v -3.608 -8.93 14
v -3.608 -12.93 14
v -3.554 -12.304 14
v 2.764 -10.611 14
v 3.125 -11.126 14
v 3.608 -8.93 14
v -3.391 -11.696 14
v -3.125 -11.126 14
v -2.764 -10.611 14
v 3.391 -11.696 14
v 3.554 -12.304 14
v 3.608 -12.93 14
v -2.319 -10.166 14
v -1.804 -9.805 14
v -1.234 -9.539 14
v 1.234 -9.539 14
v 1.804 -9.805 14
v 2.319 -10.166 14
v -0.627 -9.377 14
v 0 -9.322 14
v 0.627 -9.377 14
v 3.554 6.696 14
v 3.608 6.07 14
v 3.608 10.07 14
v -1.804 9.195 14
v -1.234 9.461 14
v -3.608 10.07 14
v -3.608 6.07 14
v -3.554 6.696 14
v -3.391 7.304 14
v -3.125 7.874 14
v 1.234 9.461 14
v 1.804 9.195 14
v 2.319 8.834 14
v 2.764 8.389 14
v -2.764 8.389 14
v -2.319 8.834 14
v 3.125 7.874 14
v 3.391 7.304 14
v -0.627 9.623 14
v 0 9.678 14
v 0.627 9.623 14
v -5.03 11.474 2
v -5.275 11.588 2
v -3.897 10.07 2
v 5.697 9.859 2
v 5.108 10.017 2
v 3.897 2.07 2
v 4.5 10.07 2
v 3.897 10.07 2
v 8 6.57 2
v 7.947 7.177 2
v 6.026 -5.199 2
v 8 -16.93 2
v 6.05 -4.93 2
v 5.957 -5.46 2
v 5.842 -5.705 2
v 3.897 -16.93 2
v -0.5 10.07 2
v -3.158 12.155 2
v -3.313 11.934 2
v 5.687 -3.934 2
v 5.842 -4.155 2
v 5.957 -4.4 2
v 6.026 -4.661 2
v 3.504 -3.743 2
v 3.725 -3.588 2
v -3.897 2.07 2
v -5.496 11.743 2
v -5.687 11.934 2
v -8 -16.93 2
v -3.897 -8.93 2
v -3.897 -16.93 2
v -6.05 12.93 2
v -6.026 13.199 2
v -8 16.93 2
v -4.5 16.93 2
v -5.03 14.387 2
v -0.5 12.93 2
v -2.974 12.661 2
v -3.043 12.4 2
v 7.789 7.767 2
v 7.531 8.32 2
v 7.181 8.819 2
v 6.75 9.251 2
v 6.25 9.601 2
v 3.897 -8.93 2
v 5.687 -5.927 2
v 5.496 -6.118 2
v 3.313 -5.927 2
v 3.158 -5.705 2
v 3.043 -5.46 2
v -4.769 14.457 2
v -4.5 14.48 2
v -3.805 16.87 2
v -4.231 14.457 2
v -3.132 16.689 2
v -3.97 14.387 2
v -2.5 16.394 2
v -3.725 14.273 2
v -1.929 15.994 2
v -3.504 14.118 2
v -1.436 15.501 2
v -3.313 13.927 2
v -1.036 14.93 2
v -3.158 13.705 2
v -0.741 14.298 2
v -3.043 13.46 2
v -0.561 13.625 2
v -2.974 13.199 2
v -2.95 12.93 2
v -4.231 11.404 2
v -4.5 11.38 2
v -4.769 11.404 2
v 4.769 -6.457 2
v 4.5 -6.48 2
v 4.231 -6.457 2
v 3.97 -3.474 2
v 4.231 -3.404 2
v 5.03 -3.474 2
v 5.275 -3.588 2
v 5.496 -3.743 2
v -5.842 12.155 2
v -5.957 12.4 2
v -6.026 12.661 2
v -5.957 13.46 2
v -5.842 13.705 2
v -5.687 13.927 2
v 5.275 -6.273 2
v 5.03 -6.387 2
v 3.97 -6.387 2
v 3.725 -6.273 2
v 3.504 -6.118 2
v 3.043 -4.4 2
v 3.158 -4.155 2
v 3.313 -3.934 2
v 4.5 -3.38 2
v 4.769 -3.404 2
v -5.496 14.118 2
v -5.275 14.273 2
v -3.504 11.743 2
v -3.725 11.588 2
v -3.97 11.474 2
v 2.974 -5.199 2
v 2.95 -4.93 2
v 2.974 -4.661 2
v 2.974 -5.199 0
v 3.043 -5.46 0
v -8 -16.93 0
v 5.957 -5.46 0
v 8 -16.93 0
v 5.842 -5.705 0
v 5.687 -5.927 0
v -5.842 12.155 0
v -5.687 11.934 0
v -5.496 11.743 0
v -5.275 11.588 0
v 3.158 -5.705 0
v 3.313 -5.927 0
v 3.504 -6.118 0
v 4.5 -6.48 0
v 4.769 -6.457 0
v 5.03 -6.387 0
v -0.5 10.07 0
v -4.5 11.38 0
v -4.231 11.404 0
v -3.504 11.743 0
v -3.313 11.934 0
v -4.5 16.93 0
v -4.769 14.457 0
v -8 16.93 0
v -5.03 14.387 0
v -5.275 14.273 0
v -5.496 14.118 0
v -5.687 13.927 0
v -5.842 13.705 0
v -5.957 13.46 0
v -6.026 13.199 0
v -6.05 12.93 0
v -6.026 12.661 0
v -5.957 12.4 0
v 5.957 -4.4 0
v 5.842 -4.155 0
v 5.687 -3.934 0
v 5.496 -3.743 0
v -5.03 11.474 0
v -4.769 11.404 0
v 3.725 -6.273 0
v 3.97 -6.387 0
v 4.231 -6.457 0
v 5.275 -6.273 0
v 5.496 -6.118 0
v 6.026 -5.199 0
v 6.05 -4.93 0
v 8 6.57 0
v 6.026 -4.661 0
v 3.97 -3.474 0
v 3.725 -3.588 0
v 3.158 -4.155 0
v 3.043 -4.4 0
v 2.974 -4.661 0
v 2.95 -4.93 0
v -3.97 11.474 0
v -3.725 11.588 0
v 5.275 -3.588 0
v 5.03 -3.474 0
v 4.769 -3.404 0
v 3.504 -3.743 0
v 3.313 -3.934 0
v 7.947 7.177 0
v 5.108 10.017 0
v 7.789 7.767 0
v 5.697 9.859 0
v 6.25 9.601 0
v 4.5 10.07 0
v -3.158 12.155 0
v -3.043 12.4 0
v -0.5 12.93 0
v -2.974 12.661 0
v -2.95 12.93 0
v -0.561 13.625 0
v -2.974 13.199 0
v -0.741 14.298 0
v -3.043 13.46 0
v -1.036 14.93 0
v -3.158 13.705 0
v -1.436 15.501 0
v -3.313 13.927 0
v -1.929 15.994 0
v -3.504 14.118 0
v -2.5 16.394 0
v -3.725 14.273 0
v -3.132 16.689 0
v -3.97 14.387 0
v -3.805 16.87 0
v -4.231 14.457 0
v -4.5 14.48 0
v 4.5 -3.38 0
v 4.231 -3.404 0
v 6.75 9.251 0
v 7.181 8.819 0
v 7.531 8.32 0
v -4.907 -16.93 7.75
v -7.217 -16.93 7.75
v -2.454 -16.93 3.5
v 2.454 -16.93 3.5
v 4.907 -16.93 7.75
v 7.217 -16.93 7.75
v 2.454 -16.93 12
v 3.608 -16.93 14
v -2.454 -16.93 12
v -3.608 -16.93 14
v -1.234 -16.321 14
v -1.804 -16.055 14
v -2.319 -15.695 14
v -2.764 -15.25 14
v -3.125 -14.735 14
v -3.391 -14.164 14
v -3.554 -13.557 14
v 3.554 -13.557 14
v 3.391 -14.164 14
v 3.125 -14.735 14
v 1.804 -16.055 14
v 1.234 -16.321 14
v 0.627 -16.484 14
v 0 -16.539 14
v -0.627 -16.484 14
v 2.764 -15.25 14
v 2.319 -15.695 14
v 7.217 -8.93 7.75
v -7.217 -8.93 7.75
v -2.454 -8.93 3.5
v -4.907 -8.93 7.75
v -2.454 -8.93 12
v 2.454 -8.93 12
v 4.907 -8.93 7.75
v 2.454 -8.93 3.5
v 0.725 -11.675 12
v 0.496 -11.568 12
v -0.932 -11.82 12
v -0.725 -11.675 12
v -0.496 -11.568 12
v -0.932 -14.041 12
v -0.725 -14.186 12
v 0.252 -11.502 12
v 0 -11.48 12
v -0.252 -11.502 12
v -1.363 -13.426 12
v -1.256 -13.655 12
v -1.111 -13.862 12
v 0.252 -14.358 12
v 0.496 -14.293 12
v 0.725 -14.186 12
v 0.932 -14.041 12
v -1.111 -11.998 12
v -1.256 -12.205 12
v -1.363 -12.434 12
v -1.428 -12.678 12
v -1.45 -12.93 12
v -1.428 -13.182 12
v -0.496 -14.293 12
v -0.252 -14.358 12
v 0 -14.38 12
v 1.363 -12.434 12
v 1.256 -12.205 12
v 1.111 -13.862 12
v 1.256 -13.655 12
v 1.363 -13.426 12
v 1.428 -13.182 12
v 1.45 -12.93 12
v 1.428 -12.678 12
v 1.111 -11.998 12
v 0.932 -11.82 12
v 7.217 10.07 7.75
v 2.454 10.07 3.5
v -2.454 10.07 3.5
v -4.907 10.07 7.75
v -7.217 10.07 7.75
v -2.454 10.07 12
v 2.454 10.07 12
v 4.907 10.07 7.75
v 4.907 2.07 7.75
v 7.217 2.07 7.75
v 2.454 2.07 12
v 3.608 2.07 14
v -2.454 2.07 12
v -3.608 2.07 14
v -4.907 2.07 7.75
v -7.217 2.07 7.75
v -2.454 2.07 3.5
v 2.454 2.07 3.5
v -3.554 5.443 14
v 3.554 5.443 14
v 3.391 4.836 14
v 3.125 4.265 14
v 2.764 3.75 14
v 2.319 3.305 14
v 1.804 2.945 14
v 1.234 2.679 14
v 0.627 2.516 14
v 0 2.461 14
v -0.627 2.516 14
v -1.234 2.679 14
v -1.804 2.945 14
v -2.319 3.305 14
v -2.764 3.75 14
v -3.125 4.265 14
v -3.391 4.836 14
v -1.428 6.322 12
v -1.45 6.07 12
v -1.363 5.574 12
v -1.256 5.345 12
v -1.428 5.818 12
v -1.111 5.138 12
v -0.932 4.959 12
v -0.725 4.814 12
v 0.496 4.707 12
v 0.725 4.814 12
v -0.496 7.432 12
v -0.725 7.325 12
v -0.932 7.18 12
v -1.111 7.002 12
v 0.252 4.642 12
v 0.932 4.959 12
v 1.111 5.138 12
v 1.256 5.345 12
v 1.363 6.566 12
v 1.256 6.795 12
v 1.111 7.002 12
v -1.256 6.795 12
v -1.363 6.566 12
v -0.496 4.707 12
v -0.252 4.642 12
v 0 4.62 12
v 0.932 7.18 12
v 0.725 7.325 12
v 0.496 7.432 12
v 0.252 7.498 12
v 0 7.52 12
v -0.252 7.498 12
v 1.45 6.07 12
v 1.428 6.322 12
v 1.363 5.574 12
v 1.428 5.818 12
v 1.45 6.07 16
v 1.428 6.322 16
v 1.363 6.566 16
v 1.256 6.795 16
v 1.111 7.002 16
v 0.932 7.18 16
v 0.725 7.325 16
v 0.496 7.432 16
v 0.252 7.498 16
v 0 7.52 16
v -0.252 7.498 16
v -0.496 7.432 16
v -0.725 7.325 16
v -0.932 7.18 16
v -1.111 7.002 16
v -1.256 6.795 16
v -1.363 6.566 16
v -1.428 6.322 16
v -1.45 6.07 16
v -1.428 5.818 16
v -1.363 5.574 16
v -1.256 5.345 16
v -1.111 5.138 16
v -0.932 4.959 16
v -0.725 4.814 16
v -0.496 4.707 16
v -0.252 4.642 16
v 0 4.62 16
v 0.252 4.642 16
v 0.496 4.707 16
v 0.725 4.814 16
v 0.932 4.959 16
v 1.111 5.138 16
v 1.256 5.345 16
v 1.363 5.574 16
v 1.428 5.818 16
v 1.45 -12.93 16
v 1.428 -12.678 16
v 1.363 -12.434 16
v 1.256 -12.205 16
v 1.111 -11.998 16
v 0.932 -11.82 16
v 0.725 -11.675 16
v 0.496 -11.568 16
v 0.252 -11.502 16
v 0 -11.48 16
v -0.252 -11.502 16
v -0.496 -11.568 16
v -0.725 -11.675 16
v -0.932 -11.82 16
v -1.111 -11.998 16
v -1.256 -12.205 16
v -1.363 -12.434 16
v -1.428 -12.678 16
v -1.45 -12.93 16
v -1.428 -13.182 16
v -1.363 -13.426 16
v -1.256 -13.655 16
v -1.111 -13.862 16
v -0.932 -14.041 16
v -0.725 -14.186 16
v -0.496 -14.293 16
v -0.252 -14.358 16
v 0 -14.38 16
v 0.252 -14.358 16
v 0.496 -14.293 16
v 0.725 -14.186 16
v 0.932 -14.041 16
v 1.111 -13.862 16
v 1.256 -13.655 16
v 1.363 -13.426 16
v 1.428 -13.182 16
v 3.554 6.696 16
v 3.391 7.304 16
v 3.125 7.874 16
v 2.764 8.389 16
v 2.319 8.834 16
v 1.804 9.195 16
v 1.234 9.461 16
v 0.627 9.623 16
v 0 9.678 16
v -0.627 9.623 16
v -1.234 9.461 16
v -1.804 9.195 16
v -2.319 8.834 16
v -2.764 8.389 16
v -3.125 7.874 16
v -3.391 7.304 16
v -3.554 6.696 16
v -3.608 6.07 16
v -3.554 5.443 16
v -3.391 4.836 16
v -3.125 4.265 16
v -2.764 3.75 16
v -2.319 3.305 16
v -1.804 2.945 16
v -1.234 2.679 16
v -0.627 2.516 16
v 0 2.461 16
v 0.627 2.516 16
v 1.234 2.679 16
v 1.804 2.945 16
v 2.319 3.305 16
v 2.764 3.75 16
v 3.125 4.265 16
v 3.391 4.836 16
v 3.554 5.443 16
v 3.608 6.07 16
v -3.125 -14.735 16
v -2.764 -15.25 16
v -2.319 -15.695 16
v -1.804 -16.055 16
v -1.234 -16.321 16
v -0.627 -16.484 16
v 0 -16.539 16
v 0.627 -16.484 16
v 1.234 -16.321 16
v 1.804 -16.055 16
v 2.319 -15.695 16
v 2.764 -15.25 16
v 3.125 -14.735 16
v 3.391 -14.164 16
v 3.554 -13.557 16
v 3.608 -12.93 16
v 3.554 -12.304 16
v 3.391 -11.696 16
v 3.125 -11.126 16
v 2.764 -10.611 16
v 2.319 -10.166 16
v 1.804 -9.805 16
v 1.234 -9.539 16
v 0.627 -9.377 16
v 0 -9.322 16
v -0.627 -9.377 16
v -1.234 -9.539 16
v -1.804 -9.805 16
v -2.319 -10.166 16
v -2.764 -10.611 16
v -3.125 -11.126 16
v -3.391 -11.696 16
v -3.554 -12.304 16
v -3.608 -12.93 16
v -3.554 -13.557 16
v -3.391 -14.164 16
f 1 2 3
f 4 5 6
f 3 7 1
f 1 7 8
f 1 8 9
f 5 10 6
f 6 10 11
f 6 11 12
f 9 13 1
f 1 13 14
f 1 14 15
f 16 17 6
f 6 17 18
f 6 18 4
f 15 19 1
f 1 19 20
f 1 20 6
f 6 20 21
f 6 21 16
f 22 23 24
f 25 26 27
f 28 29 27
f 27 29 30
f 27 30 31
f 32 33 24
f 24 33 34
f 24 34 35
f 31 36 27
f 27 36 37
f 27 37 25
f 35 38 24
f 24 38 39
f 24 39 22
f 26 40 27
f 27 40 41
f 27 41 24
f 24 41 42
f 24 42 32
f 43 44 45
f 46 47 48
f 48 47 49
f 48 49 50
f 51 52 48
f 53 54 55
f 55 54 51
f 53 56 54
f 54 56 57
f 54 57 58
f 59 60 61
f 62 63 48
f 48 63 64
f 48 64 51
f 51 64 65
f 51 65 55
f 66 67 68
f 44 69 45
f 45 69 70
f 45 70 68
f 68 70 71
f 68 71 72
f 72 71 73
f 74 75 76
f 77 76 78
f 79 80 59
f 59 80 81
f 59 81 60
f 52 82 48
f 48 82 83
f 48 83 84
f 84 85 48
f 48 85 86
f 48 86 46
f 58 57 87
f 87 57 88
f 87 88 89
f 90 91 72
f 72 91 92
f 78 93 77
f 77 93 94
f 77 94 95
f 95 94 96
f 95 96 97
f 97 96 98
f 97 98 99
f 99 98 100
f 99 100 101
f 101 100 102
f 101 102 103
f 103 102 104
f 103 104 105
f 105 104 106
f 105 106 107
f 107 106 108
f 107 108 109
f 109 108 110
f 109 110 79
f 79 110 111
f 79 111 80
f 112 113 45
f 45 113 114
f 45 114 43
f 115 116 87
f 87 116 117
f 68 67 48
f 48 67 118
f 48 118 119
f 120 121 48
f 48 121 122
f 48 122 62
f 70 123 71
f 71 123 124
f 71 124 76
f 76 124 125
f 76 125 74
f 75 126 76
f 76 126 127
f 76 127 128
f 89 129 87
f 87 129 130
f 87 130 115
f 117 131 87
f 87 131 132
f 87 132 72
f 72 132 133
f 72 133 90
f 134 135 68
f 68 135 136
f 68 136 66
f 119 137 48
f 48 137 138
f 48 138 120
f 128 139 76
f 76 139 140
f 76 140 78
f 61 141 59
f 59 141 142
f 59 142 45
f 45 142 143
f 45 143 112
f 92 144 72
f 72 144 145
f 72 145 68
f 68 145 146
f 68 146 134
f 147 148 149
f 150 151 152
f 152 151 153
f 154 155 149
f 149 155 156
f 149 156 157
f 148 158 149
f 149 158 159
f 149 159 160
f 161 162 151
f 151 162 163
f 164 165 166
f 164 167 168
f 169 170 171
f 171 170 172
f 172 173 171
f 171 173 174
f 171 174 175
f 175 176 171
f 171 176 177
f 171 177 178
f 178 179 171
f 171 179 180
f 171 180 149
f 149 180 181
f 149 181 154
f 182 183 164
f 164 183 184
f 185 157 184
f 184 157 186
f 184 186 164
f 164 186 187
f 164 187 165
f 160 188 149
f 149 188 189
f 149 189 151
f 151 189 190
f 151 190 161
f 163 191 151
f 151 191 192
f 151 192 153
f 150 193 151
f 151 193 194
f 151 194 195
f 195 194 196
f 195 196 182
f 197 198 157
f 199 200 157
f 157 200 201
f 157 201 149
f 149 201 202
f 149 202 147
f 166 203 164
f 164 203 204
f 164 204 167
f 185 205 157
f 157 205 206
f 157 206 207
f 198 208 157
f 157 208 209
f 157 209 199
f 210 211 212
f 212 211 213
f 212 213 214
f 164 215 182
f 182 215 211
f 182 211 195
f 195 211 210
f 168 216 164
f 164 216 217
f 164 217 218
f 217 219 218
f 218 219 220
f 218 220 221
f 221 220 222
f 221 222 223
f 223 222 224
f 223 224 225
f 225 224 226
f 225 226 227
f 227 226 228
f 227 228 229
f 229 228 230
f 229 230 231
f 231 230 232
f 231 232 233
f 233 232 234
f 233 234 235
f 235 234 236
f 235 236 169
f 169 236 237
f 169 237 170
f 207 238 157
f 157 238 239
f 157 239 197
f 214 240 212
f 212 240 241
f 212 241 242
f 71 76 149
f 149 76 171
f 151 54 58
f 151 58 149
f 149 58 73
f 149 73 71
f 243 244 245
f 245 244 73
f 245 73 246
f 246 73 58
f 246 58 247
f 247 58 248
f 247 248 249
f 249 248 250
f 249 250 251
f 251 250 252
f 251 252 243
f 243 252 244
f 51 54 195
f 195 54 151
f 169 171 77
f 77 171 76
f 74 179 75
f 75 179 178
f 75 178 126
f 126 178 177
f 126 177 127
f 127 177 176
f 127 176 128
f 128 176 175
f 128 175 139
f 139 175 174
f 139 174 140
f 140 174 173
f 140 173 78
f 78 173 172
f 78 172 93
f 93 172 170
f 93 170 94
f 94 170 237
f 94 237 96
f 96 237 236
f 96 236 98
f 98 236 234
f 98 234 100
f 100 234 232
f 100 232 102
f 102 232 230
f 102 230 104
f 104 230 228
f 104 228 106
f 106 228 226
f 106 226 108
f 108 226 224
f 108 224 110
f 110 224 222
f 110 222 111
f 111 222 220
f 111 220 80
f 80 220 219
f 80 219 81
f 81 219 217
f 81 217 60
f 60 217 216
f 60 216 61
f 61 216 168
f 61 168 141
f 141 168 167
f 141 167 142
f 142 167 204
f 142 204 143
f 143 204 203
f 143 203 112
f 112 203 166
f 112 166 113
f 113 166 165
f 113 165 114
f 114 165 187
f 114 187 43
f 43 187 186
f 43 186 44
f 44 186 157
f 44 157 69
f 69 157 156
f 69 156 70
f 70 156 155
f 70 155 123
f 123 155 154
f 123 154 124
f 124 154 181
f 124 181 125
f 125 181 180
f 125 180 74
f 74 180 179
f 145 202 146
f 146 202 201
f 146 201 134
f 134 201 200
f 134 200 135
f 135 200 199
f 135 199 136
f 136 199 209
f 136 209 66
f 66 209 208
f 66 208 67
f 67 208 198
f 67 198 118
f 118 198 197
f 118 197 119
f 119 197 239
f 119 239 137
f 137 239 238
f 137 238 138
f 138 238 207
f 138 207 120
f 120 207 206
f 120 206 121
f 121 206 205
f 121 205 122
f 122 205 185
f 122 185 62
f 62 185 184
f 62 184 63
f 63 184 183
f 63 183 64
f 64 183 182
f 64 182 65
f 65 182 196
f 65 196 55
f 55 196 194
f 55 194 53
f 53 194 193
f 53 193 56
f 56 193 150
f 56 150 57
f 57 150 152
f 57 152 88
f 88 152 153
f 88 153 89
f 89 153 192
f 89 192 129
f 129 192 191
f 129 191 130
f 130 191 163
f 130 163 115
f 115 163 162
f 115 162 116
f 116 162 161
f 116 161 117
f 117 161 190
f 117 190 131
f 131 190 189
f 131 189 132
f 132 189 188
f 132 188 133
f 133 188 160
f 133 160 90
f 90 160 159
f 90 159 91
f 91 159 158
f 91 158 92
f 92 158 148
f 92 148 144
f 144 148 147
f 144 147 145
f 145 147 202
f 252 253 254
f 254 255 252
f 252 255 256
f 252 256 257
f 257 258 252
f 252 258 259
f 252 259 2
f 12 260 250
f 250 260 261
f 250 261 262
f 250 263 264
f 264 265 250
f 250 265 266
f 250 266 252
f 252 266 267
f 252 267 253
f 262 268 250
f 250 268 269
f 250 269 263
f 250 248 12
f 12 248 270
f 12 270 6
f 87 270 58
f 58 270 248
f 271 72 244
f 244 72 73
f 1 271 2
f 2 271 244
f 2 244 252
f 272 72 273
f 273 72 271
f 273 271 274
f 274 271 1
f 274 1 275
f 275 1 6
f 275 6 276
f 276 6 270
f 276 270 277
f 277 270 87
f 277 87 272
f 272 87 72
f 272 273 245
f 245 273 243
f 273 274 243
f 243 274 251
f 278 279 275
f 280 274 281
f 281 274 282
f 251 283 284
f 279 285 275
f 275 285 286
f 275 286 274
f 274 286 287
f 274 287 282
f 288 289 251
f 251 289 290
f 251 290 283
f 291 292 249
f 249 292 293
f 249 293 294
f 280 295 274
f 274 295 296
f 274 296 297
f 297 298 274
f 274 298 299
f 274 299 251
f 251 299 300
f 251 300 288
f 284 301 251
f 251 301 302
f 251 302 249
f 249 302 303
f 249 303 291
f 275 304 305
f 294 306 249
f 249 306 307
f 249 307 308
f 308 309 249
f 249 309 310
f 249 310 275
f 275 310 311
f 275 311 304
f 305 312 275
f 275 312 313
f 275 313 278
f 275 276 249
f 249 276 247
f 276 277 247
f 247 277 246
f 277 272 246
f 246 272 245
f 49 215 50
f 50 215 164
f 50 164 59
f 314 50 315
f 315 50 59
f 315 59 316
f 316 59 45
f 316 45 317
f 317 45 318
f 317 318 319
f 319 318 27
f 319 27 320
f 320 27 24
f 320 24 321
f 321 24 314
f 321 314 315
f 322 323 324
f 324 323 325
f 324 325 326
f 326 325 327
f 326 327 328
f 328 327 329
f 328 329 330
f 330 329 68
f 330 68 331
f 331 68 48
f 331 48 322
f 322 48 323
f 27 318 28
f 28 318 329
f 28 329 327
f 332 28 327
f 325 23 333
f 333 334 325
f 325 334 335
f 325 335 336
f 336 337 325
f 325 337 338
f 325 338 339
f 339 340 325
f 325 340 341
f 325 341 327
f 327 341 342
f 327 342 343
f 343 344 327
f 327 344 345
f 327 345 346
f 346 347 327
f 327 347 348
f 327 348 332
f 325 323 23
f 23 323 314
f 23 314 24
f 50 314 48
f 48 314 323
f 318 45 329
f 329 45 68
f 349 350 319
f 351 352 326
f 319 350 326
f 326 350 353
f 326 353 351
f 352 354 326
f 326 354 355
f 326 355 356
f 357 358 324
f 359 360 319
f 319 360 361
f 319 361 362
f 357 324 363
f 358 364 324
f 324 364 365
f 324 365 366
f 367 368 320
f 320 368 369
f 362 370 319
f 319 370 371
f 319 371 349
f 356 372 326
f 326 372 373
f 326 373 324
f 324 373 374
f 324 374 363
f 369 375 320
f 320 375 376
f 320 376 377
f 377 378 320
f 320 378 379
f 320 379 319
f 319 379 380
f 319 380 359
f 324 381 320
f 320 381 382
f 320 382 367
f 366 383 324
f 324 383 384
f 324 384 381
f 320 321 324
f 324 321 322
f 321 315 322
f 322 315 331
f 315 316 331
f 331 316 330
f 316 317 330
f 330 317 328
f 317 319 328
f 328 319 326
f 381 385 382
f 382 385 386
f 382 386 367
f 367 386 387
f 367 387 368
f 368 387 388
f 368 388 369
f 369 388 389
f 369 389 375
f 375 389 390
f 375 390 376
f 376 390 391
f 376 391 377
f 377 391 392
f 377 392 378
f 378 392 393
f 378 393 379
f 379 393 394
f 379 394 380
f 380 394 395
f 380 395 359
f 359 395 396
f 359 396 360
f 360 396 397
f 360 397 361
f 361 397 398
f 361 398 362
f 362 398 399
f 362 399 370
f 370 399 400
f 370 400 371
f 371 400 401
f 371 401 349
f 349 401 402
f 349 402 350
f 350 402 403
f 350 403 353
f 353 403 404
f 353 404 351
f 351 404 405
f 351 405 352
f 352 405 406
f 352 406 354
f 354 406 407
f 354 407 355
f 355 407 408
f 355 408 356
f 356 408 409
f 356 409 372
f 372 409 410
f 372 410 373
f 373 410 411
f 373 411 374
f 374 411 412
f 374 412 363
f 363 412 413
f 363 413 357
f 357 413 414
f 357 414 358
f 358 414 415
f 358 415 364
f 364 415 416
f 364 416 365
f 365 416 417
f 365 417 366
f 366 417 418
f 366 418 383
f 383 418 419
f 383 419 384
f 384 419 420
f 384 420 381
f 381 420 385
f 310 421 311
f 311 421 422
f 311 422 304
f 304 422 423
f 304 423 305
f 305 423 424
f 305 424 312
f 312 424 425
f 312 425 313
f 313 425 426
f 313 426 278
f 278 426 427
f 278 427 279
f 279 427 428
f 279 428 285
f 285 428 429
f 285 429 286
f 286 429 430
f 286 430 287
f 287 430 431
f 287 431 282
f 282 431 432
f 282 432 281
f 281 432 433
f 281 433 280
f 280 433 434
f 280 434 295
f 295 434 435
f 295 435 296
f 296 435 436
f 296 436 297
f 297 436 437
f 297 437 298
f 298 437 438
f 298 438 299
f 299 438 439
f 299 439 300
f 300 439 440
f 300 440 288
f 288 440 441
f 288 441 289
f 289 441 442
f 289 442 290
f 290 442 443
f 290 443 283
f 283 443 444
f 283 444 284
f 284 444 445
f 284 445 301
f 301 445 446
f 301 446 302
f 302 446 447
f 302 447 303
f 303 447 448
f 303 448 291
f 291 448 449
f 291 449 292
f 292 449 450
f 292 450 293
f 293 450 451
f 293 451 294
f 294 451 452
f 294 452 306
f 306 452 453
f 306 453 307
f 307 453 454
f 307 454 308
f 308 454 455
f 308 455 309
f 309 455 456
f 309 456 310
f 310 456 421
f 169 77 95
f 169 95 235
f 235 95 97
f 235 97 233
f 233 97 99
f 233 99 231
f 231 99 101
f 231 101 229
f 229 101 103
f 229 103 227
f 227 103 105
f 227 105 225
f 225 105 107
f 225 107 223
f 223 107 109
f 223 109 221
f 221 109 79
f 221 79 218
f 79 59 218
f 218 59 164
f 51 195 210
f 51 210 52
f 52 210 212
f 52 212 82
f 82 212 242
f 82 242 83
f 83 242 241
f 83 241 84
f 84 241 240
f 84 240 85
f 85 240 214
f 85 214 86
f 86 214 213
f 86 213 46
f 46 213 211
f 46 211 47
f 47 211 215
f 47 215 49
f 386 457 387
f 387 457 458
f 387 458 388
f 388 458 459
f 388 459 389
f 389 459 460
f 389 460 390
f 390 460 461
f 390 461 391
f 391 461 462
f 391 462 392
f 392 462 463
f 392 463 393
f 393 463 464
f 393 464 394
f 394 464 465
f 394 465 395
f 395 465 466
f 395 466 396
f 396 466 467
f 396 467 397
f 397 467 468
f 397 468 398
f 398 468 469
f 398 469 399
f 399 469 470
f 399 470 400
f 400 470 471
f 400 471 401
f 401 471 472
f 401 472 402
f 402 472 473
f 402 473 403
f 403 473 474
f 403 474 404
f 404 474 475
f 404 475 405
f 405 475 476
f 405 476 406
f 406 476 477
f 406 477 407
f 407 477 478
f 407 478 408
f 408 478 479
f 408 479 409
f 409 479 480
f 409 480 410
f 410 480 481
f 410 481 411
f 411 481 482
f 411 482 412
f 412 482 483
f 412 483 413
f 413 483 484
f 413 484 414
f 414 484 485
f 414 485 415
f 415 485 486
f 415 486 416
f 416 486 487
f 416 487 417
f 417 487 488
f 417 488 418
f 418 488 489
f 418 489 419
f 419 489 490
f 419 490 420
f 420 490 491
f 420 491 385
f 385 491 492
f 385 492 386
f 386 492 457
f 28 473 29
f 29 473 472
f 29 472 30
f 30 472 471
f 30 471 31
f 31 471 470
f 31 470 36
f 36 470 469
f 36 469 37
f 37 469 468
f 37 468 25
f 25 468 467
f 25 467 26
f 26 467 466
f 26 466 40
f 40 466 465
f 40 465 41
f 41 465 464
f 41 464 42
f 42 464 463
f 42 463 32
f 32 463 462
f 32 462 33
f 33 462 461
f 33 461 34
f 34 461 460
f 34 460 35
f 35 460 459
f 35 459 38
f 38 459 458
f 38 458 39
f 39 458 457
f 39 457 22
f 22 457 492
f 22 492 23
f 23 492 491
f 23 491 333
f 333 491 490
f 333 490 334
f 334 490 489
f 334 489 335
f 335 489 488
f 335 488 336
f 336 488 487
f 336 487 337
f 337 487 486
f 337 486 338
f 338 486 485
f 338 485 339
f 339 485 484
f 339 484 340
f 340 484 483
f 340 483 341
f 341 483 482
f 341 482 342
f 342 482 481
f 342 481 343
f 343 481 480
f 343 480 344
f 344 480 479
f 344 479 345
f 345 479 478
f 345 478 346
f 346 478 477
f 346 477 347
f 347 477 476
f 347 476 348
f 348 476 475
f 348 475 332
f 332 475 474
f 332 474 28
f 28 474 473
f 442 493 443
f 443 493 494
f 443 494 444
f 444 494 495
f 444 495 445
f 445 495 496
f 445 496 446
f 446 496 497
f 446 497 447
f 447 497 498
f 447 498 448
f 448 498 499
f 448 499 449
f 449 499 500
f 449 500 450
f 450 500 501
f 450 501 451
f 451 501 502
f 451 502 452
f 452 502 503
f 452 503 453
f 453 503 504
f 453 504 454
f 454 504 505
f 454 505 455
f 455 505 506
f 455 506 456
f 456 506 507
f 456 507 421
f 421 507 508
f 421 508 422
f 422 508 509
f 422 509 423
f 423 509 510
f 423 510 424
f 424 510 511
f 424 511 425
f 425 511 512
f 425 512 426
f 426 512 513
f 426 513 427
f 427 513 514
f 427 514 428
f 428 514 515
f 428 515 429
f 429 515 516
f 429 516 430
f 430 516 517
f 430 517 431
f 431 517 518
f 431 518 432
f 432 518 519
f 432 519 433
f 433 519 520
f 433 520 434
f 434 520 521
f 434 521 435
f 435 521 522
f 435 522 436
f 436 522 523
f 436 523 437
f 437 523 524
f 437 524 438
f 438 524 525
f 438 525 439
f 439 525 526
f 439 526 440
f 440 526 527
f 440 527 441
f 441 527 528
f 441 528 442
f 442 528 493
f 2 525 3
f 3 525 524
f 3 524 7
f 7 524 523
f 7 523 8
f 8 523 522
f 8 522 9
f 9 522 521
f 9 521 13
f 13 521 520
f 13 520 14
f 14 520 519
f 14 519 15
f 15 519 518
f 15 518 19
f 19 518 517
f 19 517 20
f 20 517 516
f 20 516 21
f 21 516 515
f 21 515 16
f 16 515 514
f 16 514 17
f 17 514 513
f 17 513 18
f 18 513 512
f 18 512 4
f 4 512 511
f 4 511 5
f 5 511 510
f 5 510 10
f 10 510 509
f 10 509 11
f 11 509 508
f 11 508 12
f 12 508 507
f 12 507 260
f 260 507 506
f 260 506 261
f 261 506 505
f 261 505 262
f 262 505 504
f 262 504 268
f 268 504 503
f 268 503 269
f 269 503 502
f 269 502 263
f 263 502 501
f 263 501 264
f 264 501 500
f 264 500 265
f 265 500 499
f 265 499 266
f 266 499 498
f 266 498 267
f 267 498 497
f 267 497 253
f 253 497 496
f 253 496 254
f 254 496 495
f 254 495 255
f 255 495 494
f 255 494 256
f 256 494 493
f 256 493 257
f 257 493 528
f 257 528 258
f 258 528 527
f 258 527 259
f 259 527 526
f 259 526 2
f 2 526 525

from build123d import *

# Parameters (mm, degrees)
SKETCH1_W           = 16
SKETCH1_H           = 33.8605711
SKETCH1_R           = 1.55
BOSS_EXTRUDE1_DEPTH = 2
BOSS_EXTRUDE2_DEPTH = 8
BOSS_EXTRUDE3_START = 11
BOSS_EXTRUDE3_DEPTH = 8
CUT_EXTRUDE1_REACH  = 25.38
SKETCH4_R           = 1.45
CUT_EXTRUDE2_REACH  = 24.24
FILLET1_R           = 3.5
BOSS_EXTRUDE4_START = 2
SKETCH6_R           = 3.608439182
SKETCH6_R_2         = 1.45
BOSS_EXTRUDE4_DEPTH = 2


with BuildPart() as part:
    # Sketch1 → Boss-Extrude1 (new body)
    with BuildSketch(Plane.XY):
        Rectangle(SKETCH1_W, SKETCH1_H)
        with Locations((-4.5, 12.93028555)):
            Circle(SKETCH1_R, mode=Mode.SUBTRACT)
        with Locations((4.5, -4.93028555)):
            Circle(SKETCH1_R, mode=Mode.SUBTRACT)
    extrude(amount=BOSS_EXTRUDE1_DEPTH)

    # Sketch2 → Boss-Extrude2 (add)
    with BuildSketch(Plane.XZ.offset(16.93028555)):
        Polygon((-3.608439182, 14), (-7.216878365, 7.75), (-3.897114317, 2), (3.897114317, 2), (7.216878365, 7.75), (3.608439182, 14), align=None)
        Polygon((-2.453738644, 3.5), (2.453738644, 3.5), (4.907477288, 7.75), (2.453738644, 12), (-2.453738644, 12), (-4.907477288, 7.75), align=None, mode=Mode.SUBTRACT)
    extrude(amount=-BOSS_EXTRUDE2_DEPTH)

    # Sketch3 → Boss-Extrude3 (add)
    with BuildSketch(Plane(origin=(0, -8.93028555, 0), x_dir=(1, 0, 0), z_dir=(0, 1, 0)).offset(BOSS_EXTRUDE3_START)):
        Polygon((-3.608439182, -14), (3.608439182, -14), (7.216878365, -7.75), (3.897114317, -2), (-3.897114317, -2), (-7.216878365, -7.75), align=None)
        Polygon((-4.907477288, -7.75), (-2.453738644, -12), (2.453738644, -12), (4.907477288, -7.75), (2.453738644, -3.5), (-2.453738644, -3.5), align=None, mode=Mode.SUBTRACT)
    extrude(amount=BOSS_EXTRUDE3_DEPTH)

    # Sketch4 → Cut-Extrude1 (cut, up to next)
    with BuildSketch(Plane.XY.offset(14), mode=Mode.PRIVATE) as cut_extrude1_sk1:
        with Locations((0, -12.93028555)):
            Circle(SKETCH4_R)
    cut_extrude1_tool1 = extrude(cut_extrude1_sk1.sketch, amount=-CUT_EXTRUDE1_REACH, mode=Mode.PRIVATE) & part.part
    # Sketch4 → Cut-Extrude1 (cut, up to next)
    with BuildSketch(Plane.XY.offset(14), mode=Mode.PRIVATE) as cut_extrude1_sk2:
        with Locations((0, 6.06971445)):
            Circle(SKETCH4_R)
    cut_extrude1_tool2 = extrude(cut_extrude1_sk2.sketch, amount=-CUT_EXTRUDE1_REACH, mode=Mode.PRIVATE) & part.part
    add(cut_extrude1_tool1.solids().sort_by_distance((0, -12.930286, 14))[0], mode=Mode.SUBTRACT)
    add(cut_extrude1_tool2.solids().sort_by_distance((0, 6.069714, 14))[0], mode=Mode.SUBTRACT)

    # Sketch5 → Cut-Extrude2 (cut, up to next)
    with BuildSketch(Plane.XY.offset(2), mode=Mode.PRIVATE) as cut_extrude2_sk1:
        with BuildLine():
            Line((-0.5, 12.93028555), (-0.5, 10.06971445))
            Line((-0.5, 10.06971445), (8, 10.06971445))
            Line((8, 10.06971445), (8, 16.93028555))
            Line((8, 16.93028555), (-4.5, 16.93028555))
            ThreePointArc((-4.5, 16.93028555), (-1.671572875, 15.758712674), (-0.5, 12.93028555))
        make_face()
    cut_extrude2_tool1 = extrude(cut_extrude2_sk1.sketch, amount=-CUT_EXTRUDE2_REACH, mode=Mode.PRIVATE) & part.part
    add(cut_extrude2_tool1.solids().sort_by_distance((3.463989, 13.641064, 2))[0], mode=Mode.SUBTRACT)

    # Fillet1
    fillet1_edges = [part.edges().sort_by_distance(p)[0] for p in [
        (8, 10.06971445, 1),
    ]]
    fillet(fillet1_edges, radius=FILLET1_R)

    # Sketch6 → Boss-Extrude4 (add)
    # profile 1 of 2: a face of its own
    with BuildSketch(Plane.XY.offset(14).offset(BOSS_EXTRUDE4_START)):
        with Locations((0, 6.06971445)):
            Circle(SKETCH6_R)
        with Locations((0, 6.06971445)):
            Circle(SKETCH6_R_2, mode=Mode.SUBTRACT)
    # profile 2 of 2: a face of its own
    with BuildSketch(Plane.XY.offset(14).offset(BOSS_EXTRUDE4_START)):
        with Locations((0, -12.93028555)):
            Circle(SKETCH6_R)
        with Locations((0, -12.93028555)):
            Circle(SKETCH6_R_2, mode=Mode.SUBTRACT)
    extrude(amount=-BOSS_EXTRUDE4_DEPTH)


solid = part.part
